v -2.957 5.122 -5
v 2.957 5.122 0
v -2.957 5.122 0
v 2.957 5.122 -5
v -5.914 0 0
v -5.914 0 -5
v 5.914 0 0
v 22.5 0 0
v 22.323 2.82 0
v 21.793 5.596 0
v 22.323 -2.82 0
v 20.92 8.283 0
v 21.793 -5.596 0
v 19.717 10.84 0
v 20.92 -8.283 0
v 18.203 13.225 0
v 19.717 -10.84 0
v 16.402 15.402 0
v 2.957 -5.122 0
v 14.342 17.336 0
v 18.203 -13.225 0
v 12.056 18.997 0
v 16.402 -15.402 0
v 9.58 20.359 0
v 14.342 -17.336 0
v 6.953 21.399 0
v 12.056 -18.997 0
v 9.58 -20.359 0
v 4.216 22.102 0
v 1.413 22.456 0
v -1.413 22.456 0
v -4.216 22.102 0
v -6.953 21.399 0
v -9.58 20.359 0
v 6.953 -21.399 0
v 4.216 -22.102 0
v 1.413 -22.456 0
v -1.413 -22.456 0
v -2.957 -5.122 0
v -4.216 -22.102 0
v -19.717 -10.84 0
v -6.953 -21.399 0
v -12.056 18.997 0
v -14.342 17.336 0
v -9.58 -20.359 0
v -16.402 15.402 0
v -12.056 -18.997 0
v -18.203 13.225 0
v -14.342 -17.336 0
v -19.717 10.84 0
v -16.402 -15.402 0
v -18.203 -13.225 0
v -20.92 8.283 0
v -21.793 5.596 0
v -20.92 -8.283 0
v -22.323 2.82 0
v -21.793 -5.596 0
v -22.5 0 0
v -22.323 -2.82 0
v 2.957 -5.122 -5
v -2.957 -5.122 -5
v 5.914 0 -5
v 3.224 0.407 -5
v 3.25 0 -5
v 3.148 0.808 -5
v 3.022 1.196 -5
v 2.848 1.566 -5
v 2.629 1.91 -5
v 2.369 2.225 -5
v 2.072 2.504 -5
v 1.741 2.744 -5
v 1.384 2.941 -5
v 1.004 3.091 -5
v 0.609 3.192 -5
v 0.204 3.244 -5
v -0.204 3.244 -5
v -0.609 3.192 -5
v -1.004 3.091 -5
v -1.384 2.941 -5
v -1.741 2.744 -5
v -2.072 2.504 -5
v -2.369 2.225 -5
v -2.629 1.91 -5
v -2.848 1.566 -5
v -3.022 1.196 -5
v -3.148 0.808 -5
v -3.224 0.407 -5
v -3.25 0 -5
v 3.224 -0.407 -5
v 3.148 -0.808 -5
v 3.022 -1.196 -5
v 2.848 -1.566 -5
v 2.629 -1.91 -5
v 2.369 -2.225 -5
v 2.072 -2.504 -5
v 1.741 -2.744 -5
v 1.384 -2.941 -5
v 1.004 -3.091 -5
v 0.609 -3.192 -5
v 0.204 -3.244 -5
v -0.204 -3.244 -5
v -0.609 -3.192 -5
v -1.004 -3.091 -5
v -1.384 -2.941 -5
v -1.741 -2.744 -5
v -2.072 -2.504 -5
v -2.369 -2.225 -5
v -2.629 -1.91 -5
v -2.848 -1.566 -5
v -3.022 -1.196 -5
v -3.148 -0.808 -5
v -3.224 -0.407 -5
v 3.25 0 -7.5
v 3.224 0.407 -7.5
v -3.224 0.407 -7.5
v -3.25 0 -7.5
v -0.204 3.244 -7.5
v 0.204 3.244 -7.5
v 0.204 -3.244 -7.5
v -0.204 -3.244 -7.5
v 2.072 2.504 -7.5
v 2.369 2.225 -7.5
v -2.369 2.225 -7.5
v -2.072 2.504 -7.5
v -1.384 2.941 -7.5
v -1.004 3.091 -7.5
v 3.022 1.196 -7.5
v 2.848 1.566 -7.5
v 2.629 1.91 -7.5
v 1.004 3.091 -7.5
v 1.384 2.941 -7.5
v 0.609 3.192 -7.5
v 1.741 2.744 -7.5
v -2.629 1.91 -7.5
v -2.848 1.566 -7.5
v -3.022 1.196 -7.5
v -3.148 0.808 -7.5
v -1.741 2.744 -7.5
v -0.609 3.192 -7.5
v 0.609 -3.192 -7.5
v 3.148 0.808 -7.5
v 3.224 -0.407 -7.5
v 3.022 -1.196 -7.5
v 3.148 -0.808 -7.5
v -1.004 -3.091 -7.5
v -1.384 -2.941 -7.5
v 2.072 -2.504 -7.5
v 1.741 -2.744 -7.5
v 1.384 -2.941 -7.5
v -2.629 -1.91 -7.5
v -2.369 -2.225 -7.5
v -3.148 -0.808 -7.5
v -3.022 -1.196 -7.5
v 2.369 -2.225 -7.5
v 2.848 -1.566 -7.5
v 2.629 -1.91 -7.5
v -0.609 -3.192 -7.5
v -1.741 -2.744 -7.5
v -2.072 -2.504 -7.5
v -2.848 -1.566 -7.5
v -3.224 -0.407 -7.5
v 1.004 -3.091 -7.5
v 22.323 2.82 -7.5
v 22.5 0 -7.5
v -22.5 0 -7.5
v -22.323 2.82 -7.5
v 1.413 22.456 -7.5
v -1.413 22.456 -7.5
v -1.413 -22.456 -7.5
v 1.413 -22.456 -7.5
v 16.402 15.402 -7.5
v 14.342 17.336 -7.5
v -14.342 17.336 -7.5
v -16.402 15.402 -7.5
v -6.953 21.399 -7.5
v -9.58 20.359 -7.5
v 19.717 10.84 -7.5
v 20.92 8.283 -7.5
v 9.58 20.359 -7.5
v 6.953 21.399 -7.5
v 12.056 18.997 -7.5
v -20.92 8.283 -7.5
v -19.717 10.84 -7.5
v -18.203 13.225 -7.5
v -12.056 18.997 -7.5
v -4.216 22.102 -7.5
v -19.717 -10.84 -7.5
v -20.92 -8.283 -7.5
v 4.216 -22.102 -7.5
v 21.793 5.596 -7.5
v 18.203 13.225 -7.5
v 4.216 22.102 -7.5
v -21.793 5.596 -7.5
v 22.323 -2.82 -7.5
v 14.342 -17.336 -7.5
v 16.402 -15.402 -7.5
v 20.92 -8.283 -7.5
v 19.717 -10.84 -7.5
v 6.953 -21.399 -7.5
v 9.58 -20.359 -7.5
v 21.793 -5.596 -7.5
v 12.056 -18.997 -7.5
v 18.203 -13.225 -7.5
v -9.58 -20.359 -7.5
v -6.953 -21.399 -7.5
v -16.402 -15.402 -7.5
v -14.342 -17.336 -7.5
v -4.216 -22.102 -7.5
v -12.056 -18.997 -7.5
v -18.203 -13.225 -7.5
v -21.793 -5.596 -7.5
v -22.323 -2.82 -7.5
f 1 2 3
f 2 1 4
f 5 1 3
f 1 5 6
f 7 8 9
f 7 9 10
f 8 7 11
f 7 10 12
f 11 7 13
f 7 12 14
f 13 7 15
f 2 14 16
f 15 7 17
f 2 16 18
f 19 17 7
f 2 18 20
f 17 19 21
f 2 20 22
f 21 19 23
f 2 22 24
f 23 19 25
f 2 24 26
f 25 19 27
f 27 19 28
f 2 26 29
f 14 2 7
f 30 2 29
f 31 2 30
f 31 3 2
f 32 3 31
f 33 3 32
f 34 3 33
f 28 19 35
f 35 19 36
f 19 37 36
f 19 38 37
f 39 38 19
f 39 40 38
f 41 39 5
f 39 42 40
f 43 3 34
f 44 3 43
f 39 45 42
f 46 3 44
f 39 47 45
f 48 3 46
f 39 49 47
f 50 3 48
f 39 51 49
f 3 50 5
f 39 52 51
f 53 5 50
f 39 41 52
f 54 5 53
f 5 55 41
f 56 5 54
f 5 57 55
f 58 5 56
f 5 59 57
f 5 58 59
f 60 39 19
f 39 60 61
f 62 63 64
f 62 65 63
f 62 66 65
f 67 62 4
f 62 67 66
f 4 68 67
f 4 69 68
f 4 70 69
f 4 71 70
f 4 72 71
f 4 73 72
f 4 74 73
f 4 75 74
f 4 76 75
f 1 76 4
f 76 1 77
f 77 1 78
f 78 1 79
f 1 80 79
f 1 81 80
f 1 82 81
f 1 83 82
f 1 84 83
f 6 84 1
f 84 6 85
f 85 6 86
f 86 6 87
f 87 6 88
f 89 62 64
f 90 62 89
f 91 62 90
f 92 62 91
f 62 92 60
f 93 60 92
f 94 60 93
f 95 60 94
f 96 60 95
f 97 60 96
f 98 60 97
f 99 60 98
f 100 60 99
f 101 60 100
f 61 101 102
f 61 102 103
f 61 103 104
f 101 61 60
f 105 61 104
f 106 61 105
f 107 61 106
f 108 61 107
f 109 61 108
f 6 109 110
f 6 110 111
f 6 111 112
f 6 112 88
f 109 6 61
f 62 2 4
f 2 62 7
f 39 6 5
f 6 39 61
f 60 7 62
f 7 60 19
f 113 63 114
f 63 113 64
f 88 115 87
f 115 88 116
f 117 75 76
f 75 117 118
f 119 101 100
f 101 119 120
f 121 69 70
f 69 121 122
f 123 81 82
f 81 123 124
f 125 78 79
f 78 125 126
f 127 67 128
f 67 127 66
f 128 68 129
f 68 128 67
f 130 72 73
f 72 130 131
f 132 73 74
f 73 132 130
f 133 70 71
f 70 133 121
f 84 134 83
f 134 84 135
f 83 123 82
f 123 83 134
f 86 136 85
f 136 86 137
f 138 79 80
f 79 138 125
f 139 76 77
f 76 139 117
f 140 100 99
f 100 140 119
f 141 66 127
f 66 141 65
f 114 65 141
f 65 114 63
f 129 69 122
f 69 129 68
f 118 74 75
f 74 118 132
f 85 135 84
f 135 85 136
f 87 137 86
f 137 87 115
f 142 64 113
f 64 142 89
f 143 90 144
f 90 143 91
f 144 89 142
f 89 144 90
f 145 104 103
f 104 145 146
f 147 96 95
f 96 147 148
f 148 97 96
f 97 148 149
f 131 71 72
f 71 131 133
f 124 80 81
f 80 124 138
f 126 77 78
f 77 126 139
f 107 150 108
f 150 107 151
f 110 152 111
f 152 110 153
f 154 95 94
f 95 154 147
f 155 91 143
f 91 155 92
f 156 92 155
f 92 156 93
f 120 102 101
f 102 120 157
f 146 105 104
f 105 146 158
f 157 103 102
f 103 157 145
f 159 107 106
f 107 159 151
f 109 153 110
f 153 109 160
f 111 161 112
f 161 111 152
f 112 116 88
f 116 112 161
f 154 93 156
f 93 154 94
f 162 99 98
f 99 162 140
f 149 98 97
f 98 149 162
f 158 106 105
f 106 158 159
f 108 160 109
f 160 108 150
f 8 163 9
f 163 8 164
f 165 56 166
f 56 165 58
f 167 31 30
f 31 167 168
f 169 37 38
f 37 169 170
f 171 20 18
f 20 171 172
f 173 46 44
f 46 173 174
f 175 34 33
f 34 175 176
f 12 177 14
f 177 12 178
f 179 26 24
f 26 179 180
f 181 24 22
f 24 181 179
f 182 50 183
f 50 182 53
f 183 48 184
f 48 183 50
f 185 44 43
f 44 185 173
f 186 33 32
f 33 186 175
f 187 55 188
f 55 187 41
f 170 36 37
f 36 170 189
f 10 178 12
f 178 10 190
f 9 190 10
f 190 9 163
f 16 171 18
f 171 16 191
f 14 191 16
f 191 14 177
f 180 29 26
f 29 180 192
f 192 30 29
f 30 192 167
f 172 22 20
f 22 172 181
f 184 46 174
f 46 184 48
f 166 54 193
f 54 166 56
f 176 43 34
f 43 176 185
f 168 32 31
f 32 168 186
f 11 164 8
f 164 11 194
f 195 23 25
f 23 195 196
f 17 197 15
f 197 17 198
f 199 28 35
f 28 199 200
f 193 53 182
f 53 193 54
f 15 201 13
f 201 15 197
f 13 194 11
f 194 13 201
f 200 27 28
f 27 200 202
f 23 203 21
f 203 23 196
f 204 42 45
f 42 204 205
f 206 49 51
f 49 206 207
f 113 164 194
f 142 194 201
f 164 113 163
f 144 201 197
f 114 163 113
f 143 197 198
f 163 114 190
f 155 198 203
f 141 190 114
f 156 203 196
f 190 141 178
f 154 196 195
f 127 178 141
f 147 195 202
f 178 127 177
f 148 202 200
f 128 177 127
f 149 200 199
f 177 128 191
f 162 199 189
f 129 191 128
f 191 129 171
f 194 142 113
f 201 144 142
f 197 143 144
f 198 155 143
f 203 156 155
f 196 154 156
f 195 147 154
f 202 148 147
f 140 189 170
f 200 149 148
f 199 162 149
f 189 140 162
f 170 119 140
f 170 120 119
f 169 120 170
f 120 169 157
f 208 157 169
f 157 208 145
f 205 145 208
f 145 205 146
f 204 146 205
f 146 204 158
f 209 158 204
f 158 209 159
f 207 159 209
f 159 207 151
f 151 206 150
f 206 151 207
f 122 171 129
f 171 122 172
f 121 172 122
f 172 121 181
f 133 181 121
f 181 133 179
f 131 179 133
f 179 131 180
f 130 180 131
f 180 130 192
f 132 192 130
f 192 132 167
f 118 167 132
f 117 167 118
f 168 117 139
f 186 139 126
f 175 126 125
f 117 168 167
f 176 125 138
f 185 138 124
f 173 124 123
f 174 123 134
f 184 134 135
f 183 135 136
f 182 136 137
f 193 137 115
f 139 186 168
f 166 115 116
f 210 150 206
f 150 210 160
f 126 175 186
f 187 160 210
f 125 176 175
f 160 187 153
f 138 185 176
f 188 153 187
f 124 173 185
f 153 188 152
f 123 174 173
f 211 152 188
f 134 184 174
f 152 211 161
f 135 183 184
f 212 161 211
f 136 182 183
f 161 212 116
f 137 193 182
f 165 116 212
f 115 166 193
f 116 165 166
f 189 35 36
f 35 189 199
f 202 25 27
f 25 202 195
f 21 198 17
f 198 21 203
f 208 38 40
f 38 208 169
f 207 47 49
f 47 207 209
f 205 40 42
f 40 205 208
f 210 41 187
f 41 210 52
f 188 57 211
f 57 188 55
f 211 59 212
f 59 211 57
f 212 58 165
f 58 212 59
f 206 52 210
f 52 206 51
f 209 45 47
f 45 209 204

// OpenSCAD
$fn = 50;


difference() {
	union() {
		translate(v = [0, 0, -7.5000000000]) {
			cylinder(h = 7.5000000000, r = 22.5000000000);
		}
	}
	union() {
		translate(v = [0, 0, 0]) {
			rotate(a = [0, 0, 0]) {
				difference() {
					union() {
						translate(v = [0, 0, -5]) {
							linear_extrude(height = 5) {
								polygon(points = [[5.9142500000, 0.0000000000], [2.9571250000, 5.1218907443], [-2.9571250000, 5.1218907443], [-5.9142500000, 0.0000000000], [-2.9571250000, -5.1218907443], [2.9571250000, -5.1218907443]]);
							}
						}
					}
					union();
				}
			}
		}
		#translate(v = [0, 0, -100.0000000000]) {
			cylinder(h = 200, r = 3.2500000000);
		}
	}
}
